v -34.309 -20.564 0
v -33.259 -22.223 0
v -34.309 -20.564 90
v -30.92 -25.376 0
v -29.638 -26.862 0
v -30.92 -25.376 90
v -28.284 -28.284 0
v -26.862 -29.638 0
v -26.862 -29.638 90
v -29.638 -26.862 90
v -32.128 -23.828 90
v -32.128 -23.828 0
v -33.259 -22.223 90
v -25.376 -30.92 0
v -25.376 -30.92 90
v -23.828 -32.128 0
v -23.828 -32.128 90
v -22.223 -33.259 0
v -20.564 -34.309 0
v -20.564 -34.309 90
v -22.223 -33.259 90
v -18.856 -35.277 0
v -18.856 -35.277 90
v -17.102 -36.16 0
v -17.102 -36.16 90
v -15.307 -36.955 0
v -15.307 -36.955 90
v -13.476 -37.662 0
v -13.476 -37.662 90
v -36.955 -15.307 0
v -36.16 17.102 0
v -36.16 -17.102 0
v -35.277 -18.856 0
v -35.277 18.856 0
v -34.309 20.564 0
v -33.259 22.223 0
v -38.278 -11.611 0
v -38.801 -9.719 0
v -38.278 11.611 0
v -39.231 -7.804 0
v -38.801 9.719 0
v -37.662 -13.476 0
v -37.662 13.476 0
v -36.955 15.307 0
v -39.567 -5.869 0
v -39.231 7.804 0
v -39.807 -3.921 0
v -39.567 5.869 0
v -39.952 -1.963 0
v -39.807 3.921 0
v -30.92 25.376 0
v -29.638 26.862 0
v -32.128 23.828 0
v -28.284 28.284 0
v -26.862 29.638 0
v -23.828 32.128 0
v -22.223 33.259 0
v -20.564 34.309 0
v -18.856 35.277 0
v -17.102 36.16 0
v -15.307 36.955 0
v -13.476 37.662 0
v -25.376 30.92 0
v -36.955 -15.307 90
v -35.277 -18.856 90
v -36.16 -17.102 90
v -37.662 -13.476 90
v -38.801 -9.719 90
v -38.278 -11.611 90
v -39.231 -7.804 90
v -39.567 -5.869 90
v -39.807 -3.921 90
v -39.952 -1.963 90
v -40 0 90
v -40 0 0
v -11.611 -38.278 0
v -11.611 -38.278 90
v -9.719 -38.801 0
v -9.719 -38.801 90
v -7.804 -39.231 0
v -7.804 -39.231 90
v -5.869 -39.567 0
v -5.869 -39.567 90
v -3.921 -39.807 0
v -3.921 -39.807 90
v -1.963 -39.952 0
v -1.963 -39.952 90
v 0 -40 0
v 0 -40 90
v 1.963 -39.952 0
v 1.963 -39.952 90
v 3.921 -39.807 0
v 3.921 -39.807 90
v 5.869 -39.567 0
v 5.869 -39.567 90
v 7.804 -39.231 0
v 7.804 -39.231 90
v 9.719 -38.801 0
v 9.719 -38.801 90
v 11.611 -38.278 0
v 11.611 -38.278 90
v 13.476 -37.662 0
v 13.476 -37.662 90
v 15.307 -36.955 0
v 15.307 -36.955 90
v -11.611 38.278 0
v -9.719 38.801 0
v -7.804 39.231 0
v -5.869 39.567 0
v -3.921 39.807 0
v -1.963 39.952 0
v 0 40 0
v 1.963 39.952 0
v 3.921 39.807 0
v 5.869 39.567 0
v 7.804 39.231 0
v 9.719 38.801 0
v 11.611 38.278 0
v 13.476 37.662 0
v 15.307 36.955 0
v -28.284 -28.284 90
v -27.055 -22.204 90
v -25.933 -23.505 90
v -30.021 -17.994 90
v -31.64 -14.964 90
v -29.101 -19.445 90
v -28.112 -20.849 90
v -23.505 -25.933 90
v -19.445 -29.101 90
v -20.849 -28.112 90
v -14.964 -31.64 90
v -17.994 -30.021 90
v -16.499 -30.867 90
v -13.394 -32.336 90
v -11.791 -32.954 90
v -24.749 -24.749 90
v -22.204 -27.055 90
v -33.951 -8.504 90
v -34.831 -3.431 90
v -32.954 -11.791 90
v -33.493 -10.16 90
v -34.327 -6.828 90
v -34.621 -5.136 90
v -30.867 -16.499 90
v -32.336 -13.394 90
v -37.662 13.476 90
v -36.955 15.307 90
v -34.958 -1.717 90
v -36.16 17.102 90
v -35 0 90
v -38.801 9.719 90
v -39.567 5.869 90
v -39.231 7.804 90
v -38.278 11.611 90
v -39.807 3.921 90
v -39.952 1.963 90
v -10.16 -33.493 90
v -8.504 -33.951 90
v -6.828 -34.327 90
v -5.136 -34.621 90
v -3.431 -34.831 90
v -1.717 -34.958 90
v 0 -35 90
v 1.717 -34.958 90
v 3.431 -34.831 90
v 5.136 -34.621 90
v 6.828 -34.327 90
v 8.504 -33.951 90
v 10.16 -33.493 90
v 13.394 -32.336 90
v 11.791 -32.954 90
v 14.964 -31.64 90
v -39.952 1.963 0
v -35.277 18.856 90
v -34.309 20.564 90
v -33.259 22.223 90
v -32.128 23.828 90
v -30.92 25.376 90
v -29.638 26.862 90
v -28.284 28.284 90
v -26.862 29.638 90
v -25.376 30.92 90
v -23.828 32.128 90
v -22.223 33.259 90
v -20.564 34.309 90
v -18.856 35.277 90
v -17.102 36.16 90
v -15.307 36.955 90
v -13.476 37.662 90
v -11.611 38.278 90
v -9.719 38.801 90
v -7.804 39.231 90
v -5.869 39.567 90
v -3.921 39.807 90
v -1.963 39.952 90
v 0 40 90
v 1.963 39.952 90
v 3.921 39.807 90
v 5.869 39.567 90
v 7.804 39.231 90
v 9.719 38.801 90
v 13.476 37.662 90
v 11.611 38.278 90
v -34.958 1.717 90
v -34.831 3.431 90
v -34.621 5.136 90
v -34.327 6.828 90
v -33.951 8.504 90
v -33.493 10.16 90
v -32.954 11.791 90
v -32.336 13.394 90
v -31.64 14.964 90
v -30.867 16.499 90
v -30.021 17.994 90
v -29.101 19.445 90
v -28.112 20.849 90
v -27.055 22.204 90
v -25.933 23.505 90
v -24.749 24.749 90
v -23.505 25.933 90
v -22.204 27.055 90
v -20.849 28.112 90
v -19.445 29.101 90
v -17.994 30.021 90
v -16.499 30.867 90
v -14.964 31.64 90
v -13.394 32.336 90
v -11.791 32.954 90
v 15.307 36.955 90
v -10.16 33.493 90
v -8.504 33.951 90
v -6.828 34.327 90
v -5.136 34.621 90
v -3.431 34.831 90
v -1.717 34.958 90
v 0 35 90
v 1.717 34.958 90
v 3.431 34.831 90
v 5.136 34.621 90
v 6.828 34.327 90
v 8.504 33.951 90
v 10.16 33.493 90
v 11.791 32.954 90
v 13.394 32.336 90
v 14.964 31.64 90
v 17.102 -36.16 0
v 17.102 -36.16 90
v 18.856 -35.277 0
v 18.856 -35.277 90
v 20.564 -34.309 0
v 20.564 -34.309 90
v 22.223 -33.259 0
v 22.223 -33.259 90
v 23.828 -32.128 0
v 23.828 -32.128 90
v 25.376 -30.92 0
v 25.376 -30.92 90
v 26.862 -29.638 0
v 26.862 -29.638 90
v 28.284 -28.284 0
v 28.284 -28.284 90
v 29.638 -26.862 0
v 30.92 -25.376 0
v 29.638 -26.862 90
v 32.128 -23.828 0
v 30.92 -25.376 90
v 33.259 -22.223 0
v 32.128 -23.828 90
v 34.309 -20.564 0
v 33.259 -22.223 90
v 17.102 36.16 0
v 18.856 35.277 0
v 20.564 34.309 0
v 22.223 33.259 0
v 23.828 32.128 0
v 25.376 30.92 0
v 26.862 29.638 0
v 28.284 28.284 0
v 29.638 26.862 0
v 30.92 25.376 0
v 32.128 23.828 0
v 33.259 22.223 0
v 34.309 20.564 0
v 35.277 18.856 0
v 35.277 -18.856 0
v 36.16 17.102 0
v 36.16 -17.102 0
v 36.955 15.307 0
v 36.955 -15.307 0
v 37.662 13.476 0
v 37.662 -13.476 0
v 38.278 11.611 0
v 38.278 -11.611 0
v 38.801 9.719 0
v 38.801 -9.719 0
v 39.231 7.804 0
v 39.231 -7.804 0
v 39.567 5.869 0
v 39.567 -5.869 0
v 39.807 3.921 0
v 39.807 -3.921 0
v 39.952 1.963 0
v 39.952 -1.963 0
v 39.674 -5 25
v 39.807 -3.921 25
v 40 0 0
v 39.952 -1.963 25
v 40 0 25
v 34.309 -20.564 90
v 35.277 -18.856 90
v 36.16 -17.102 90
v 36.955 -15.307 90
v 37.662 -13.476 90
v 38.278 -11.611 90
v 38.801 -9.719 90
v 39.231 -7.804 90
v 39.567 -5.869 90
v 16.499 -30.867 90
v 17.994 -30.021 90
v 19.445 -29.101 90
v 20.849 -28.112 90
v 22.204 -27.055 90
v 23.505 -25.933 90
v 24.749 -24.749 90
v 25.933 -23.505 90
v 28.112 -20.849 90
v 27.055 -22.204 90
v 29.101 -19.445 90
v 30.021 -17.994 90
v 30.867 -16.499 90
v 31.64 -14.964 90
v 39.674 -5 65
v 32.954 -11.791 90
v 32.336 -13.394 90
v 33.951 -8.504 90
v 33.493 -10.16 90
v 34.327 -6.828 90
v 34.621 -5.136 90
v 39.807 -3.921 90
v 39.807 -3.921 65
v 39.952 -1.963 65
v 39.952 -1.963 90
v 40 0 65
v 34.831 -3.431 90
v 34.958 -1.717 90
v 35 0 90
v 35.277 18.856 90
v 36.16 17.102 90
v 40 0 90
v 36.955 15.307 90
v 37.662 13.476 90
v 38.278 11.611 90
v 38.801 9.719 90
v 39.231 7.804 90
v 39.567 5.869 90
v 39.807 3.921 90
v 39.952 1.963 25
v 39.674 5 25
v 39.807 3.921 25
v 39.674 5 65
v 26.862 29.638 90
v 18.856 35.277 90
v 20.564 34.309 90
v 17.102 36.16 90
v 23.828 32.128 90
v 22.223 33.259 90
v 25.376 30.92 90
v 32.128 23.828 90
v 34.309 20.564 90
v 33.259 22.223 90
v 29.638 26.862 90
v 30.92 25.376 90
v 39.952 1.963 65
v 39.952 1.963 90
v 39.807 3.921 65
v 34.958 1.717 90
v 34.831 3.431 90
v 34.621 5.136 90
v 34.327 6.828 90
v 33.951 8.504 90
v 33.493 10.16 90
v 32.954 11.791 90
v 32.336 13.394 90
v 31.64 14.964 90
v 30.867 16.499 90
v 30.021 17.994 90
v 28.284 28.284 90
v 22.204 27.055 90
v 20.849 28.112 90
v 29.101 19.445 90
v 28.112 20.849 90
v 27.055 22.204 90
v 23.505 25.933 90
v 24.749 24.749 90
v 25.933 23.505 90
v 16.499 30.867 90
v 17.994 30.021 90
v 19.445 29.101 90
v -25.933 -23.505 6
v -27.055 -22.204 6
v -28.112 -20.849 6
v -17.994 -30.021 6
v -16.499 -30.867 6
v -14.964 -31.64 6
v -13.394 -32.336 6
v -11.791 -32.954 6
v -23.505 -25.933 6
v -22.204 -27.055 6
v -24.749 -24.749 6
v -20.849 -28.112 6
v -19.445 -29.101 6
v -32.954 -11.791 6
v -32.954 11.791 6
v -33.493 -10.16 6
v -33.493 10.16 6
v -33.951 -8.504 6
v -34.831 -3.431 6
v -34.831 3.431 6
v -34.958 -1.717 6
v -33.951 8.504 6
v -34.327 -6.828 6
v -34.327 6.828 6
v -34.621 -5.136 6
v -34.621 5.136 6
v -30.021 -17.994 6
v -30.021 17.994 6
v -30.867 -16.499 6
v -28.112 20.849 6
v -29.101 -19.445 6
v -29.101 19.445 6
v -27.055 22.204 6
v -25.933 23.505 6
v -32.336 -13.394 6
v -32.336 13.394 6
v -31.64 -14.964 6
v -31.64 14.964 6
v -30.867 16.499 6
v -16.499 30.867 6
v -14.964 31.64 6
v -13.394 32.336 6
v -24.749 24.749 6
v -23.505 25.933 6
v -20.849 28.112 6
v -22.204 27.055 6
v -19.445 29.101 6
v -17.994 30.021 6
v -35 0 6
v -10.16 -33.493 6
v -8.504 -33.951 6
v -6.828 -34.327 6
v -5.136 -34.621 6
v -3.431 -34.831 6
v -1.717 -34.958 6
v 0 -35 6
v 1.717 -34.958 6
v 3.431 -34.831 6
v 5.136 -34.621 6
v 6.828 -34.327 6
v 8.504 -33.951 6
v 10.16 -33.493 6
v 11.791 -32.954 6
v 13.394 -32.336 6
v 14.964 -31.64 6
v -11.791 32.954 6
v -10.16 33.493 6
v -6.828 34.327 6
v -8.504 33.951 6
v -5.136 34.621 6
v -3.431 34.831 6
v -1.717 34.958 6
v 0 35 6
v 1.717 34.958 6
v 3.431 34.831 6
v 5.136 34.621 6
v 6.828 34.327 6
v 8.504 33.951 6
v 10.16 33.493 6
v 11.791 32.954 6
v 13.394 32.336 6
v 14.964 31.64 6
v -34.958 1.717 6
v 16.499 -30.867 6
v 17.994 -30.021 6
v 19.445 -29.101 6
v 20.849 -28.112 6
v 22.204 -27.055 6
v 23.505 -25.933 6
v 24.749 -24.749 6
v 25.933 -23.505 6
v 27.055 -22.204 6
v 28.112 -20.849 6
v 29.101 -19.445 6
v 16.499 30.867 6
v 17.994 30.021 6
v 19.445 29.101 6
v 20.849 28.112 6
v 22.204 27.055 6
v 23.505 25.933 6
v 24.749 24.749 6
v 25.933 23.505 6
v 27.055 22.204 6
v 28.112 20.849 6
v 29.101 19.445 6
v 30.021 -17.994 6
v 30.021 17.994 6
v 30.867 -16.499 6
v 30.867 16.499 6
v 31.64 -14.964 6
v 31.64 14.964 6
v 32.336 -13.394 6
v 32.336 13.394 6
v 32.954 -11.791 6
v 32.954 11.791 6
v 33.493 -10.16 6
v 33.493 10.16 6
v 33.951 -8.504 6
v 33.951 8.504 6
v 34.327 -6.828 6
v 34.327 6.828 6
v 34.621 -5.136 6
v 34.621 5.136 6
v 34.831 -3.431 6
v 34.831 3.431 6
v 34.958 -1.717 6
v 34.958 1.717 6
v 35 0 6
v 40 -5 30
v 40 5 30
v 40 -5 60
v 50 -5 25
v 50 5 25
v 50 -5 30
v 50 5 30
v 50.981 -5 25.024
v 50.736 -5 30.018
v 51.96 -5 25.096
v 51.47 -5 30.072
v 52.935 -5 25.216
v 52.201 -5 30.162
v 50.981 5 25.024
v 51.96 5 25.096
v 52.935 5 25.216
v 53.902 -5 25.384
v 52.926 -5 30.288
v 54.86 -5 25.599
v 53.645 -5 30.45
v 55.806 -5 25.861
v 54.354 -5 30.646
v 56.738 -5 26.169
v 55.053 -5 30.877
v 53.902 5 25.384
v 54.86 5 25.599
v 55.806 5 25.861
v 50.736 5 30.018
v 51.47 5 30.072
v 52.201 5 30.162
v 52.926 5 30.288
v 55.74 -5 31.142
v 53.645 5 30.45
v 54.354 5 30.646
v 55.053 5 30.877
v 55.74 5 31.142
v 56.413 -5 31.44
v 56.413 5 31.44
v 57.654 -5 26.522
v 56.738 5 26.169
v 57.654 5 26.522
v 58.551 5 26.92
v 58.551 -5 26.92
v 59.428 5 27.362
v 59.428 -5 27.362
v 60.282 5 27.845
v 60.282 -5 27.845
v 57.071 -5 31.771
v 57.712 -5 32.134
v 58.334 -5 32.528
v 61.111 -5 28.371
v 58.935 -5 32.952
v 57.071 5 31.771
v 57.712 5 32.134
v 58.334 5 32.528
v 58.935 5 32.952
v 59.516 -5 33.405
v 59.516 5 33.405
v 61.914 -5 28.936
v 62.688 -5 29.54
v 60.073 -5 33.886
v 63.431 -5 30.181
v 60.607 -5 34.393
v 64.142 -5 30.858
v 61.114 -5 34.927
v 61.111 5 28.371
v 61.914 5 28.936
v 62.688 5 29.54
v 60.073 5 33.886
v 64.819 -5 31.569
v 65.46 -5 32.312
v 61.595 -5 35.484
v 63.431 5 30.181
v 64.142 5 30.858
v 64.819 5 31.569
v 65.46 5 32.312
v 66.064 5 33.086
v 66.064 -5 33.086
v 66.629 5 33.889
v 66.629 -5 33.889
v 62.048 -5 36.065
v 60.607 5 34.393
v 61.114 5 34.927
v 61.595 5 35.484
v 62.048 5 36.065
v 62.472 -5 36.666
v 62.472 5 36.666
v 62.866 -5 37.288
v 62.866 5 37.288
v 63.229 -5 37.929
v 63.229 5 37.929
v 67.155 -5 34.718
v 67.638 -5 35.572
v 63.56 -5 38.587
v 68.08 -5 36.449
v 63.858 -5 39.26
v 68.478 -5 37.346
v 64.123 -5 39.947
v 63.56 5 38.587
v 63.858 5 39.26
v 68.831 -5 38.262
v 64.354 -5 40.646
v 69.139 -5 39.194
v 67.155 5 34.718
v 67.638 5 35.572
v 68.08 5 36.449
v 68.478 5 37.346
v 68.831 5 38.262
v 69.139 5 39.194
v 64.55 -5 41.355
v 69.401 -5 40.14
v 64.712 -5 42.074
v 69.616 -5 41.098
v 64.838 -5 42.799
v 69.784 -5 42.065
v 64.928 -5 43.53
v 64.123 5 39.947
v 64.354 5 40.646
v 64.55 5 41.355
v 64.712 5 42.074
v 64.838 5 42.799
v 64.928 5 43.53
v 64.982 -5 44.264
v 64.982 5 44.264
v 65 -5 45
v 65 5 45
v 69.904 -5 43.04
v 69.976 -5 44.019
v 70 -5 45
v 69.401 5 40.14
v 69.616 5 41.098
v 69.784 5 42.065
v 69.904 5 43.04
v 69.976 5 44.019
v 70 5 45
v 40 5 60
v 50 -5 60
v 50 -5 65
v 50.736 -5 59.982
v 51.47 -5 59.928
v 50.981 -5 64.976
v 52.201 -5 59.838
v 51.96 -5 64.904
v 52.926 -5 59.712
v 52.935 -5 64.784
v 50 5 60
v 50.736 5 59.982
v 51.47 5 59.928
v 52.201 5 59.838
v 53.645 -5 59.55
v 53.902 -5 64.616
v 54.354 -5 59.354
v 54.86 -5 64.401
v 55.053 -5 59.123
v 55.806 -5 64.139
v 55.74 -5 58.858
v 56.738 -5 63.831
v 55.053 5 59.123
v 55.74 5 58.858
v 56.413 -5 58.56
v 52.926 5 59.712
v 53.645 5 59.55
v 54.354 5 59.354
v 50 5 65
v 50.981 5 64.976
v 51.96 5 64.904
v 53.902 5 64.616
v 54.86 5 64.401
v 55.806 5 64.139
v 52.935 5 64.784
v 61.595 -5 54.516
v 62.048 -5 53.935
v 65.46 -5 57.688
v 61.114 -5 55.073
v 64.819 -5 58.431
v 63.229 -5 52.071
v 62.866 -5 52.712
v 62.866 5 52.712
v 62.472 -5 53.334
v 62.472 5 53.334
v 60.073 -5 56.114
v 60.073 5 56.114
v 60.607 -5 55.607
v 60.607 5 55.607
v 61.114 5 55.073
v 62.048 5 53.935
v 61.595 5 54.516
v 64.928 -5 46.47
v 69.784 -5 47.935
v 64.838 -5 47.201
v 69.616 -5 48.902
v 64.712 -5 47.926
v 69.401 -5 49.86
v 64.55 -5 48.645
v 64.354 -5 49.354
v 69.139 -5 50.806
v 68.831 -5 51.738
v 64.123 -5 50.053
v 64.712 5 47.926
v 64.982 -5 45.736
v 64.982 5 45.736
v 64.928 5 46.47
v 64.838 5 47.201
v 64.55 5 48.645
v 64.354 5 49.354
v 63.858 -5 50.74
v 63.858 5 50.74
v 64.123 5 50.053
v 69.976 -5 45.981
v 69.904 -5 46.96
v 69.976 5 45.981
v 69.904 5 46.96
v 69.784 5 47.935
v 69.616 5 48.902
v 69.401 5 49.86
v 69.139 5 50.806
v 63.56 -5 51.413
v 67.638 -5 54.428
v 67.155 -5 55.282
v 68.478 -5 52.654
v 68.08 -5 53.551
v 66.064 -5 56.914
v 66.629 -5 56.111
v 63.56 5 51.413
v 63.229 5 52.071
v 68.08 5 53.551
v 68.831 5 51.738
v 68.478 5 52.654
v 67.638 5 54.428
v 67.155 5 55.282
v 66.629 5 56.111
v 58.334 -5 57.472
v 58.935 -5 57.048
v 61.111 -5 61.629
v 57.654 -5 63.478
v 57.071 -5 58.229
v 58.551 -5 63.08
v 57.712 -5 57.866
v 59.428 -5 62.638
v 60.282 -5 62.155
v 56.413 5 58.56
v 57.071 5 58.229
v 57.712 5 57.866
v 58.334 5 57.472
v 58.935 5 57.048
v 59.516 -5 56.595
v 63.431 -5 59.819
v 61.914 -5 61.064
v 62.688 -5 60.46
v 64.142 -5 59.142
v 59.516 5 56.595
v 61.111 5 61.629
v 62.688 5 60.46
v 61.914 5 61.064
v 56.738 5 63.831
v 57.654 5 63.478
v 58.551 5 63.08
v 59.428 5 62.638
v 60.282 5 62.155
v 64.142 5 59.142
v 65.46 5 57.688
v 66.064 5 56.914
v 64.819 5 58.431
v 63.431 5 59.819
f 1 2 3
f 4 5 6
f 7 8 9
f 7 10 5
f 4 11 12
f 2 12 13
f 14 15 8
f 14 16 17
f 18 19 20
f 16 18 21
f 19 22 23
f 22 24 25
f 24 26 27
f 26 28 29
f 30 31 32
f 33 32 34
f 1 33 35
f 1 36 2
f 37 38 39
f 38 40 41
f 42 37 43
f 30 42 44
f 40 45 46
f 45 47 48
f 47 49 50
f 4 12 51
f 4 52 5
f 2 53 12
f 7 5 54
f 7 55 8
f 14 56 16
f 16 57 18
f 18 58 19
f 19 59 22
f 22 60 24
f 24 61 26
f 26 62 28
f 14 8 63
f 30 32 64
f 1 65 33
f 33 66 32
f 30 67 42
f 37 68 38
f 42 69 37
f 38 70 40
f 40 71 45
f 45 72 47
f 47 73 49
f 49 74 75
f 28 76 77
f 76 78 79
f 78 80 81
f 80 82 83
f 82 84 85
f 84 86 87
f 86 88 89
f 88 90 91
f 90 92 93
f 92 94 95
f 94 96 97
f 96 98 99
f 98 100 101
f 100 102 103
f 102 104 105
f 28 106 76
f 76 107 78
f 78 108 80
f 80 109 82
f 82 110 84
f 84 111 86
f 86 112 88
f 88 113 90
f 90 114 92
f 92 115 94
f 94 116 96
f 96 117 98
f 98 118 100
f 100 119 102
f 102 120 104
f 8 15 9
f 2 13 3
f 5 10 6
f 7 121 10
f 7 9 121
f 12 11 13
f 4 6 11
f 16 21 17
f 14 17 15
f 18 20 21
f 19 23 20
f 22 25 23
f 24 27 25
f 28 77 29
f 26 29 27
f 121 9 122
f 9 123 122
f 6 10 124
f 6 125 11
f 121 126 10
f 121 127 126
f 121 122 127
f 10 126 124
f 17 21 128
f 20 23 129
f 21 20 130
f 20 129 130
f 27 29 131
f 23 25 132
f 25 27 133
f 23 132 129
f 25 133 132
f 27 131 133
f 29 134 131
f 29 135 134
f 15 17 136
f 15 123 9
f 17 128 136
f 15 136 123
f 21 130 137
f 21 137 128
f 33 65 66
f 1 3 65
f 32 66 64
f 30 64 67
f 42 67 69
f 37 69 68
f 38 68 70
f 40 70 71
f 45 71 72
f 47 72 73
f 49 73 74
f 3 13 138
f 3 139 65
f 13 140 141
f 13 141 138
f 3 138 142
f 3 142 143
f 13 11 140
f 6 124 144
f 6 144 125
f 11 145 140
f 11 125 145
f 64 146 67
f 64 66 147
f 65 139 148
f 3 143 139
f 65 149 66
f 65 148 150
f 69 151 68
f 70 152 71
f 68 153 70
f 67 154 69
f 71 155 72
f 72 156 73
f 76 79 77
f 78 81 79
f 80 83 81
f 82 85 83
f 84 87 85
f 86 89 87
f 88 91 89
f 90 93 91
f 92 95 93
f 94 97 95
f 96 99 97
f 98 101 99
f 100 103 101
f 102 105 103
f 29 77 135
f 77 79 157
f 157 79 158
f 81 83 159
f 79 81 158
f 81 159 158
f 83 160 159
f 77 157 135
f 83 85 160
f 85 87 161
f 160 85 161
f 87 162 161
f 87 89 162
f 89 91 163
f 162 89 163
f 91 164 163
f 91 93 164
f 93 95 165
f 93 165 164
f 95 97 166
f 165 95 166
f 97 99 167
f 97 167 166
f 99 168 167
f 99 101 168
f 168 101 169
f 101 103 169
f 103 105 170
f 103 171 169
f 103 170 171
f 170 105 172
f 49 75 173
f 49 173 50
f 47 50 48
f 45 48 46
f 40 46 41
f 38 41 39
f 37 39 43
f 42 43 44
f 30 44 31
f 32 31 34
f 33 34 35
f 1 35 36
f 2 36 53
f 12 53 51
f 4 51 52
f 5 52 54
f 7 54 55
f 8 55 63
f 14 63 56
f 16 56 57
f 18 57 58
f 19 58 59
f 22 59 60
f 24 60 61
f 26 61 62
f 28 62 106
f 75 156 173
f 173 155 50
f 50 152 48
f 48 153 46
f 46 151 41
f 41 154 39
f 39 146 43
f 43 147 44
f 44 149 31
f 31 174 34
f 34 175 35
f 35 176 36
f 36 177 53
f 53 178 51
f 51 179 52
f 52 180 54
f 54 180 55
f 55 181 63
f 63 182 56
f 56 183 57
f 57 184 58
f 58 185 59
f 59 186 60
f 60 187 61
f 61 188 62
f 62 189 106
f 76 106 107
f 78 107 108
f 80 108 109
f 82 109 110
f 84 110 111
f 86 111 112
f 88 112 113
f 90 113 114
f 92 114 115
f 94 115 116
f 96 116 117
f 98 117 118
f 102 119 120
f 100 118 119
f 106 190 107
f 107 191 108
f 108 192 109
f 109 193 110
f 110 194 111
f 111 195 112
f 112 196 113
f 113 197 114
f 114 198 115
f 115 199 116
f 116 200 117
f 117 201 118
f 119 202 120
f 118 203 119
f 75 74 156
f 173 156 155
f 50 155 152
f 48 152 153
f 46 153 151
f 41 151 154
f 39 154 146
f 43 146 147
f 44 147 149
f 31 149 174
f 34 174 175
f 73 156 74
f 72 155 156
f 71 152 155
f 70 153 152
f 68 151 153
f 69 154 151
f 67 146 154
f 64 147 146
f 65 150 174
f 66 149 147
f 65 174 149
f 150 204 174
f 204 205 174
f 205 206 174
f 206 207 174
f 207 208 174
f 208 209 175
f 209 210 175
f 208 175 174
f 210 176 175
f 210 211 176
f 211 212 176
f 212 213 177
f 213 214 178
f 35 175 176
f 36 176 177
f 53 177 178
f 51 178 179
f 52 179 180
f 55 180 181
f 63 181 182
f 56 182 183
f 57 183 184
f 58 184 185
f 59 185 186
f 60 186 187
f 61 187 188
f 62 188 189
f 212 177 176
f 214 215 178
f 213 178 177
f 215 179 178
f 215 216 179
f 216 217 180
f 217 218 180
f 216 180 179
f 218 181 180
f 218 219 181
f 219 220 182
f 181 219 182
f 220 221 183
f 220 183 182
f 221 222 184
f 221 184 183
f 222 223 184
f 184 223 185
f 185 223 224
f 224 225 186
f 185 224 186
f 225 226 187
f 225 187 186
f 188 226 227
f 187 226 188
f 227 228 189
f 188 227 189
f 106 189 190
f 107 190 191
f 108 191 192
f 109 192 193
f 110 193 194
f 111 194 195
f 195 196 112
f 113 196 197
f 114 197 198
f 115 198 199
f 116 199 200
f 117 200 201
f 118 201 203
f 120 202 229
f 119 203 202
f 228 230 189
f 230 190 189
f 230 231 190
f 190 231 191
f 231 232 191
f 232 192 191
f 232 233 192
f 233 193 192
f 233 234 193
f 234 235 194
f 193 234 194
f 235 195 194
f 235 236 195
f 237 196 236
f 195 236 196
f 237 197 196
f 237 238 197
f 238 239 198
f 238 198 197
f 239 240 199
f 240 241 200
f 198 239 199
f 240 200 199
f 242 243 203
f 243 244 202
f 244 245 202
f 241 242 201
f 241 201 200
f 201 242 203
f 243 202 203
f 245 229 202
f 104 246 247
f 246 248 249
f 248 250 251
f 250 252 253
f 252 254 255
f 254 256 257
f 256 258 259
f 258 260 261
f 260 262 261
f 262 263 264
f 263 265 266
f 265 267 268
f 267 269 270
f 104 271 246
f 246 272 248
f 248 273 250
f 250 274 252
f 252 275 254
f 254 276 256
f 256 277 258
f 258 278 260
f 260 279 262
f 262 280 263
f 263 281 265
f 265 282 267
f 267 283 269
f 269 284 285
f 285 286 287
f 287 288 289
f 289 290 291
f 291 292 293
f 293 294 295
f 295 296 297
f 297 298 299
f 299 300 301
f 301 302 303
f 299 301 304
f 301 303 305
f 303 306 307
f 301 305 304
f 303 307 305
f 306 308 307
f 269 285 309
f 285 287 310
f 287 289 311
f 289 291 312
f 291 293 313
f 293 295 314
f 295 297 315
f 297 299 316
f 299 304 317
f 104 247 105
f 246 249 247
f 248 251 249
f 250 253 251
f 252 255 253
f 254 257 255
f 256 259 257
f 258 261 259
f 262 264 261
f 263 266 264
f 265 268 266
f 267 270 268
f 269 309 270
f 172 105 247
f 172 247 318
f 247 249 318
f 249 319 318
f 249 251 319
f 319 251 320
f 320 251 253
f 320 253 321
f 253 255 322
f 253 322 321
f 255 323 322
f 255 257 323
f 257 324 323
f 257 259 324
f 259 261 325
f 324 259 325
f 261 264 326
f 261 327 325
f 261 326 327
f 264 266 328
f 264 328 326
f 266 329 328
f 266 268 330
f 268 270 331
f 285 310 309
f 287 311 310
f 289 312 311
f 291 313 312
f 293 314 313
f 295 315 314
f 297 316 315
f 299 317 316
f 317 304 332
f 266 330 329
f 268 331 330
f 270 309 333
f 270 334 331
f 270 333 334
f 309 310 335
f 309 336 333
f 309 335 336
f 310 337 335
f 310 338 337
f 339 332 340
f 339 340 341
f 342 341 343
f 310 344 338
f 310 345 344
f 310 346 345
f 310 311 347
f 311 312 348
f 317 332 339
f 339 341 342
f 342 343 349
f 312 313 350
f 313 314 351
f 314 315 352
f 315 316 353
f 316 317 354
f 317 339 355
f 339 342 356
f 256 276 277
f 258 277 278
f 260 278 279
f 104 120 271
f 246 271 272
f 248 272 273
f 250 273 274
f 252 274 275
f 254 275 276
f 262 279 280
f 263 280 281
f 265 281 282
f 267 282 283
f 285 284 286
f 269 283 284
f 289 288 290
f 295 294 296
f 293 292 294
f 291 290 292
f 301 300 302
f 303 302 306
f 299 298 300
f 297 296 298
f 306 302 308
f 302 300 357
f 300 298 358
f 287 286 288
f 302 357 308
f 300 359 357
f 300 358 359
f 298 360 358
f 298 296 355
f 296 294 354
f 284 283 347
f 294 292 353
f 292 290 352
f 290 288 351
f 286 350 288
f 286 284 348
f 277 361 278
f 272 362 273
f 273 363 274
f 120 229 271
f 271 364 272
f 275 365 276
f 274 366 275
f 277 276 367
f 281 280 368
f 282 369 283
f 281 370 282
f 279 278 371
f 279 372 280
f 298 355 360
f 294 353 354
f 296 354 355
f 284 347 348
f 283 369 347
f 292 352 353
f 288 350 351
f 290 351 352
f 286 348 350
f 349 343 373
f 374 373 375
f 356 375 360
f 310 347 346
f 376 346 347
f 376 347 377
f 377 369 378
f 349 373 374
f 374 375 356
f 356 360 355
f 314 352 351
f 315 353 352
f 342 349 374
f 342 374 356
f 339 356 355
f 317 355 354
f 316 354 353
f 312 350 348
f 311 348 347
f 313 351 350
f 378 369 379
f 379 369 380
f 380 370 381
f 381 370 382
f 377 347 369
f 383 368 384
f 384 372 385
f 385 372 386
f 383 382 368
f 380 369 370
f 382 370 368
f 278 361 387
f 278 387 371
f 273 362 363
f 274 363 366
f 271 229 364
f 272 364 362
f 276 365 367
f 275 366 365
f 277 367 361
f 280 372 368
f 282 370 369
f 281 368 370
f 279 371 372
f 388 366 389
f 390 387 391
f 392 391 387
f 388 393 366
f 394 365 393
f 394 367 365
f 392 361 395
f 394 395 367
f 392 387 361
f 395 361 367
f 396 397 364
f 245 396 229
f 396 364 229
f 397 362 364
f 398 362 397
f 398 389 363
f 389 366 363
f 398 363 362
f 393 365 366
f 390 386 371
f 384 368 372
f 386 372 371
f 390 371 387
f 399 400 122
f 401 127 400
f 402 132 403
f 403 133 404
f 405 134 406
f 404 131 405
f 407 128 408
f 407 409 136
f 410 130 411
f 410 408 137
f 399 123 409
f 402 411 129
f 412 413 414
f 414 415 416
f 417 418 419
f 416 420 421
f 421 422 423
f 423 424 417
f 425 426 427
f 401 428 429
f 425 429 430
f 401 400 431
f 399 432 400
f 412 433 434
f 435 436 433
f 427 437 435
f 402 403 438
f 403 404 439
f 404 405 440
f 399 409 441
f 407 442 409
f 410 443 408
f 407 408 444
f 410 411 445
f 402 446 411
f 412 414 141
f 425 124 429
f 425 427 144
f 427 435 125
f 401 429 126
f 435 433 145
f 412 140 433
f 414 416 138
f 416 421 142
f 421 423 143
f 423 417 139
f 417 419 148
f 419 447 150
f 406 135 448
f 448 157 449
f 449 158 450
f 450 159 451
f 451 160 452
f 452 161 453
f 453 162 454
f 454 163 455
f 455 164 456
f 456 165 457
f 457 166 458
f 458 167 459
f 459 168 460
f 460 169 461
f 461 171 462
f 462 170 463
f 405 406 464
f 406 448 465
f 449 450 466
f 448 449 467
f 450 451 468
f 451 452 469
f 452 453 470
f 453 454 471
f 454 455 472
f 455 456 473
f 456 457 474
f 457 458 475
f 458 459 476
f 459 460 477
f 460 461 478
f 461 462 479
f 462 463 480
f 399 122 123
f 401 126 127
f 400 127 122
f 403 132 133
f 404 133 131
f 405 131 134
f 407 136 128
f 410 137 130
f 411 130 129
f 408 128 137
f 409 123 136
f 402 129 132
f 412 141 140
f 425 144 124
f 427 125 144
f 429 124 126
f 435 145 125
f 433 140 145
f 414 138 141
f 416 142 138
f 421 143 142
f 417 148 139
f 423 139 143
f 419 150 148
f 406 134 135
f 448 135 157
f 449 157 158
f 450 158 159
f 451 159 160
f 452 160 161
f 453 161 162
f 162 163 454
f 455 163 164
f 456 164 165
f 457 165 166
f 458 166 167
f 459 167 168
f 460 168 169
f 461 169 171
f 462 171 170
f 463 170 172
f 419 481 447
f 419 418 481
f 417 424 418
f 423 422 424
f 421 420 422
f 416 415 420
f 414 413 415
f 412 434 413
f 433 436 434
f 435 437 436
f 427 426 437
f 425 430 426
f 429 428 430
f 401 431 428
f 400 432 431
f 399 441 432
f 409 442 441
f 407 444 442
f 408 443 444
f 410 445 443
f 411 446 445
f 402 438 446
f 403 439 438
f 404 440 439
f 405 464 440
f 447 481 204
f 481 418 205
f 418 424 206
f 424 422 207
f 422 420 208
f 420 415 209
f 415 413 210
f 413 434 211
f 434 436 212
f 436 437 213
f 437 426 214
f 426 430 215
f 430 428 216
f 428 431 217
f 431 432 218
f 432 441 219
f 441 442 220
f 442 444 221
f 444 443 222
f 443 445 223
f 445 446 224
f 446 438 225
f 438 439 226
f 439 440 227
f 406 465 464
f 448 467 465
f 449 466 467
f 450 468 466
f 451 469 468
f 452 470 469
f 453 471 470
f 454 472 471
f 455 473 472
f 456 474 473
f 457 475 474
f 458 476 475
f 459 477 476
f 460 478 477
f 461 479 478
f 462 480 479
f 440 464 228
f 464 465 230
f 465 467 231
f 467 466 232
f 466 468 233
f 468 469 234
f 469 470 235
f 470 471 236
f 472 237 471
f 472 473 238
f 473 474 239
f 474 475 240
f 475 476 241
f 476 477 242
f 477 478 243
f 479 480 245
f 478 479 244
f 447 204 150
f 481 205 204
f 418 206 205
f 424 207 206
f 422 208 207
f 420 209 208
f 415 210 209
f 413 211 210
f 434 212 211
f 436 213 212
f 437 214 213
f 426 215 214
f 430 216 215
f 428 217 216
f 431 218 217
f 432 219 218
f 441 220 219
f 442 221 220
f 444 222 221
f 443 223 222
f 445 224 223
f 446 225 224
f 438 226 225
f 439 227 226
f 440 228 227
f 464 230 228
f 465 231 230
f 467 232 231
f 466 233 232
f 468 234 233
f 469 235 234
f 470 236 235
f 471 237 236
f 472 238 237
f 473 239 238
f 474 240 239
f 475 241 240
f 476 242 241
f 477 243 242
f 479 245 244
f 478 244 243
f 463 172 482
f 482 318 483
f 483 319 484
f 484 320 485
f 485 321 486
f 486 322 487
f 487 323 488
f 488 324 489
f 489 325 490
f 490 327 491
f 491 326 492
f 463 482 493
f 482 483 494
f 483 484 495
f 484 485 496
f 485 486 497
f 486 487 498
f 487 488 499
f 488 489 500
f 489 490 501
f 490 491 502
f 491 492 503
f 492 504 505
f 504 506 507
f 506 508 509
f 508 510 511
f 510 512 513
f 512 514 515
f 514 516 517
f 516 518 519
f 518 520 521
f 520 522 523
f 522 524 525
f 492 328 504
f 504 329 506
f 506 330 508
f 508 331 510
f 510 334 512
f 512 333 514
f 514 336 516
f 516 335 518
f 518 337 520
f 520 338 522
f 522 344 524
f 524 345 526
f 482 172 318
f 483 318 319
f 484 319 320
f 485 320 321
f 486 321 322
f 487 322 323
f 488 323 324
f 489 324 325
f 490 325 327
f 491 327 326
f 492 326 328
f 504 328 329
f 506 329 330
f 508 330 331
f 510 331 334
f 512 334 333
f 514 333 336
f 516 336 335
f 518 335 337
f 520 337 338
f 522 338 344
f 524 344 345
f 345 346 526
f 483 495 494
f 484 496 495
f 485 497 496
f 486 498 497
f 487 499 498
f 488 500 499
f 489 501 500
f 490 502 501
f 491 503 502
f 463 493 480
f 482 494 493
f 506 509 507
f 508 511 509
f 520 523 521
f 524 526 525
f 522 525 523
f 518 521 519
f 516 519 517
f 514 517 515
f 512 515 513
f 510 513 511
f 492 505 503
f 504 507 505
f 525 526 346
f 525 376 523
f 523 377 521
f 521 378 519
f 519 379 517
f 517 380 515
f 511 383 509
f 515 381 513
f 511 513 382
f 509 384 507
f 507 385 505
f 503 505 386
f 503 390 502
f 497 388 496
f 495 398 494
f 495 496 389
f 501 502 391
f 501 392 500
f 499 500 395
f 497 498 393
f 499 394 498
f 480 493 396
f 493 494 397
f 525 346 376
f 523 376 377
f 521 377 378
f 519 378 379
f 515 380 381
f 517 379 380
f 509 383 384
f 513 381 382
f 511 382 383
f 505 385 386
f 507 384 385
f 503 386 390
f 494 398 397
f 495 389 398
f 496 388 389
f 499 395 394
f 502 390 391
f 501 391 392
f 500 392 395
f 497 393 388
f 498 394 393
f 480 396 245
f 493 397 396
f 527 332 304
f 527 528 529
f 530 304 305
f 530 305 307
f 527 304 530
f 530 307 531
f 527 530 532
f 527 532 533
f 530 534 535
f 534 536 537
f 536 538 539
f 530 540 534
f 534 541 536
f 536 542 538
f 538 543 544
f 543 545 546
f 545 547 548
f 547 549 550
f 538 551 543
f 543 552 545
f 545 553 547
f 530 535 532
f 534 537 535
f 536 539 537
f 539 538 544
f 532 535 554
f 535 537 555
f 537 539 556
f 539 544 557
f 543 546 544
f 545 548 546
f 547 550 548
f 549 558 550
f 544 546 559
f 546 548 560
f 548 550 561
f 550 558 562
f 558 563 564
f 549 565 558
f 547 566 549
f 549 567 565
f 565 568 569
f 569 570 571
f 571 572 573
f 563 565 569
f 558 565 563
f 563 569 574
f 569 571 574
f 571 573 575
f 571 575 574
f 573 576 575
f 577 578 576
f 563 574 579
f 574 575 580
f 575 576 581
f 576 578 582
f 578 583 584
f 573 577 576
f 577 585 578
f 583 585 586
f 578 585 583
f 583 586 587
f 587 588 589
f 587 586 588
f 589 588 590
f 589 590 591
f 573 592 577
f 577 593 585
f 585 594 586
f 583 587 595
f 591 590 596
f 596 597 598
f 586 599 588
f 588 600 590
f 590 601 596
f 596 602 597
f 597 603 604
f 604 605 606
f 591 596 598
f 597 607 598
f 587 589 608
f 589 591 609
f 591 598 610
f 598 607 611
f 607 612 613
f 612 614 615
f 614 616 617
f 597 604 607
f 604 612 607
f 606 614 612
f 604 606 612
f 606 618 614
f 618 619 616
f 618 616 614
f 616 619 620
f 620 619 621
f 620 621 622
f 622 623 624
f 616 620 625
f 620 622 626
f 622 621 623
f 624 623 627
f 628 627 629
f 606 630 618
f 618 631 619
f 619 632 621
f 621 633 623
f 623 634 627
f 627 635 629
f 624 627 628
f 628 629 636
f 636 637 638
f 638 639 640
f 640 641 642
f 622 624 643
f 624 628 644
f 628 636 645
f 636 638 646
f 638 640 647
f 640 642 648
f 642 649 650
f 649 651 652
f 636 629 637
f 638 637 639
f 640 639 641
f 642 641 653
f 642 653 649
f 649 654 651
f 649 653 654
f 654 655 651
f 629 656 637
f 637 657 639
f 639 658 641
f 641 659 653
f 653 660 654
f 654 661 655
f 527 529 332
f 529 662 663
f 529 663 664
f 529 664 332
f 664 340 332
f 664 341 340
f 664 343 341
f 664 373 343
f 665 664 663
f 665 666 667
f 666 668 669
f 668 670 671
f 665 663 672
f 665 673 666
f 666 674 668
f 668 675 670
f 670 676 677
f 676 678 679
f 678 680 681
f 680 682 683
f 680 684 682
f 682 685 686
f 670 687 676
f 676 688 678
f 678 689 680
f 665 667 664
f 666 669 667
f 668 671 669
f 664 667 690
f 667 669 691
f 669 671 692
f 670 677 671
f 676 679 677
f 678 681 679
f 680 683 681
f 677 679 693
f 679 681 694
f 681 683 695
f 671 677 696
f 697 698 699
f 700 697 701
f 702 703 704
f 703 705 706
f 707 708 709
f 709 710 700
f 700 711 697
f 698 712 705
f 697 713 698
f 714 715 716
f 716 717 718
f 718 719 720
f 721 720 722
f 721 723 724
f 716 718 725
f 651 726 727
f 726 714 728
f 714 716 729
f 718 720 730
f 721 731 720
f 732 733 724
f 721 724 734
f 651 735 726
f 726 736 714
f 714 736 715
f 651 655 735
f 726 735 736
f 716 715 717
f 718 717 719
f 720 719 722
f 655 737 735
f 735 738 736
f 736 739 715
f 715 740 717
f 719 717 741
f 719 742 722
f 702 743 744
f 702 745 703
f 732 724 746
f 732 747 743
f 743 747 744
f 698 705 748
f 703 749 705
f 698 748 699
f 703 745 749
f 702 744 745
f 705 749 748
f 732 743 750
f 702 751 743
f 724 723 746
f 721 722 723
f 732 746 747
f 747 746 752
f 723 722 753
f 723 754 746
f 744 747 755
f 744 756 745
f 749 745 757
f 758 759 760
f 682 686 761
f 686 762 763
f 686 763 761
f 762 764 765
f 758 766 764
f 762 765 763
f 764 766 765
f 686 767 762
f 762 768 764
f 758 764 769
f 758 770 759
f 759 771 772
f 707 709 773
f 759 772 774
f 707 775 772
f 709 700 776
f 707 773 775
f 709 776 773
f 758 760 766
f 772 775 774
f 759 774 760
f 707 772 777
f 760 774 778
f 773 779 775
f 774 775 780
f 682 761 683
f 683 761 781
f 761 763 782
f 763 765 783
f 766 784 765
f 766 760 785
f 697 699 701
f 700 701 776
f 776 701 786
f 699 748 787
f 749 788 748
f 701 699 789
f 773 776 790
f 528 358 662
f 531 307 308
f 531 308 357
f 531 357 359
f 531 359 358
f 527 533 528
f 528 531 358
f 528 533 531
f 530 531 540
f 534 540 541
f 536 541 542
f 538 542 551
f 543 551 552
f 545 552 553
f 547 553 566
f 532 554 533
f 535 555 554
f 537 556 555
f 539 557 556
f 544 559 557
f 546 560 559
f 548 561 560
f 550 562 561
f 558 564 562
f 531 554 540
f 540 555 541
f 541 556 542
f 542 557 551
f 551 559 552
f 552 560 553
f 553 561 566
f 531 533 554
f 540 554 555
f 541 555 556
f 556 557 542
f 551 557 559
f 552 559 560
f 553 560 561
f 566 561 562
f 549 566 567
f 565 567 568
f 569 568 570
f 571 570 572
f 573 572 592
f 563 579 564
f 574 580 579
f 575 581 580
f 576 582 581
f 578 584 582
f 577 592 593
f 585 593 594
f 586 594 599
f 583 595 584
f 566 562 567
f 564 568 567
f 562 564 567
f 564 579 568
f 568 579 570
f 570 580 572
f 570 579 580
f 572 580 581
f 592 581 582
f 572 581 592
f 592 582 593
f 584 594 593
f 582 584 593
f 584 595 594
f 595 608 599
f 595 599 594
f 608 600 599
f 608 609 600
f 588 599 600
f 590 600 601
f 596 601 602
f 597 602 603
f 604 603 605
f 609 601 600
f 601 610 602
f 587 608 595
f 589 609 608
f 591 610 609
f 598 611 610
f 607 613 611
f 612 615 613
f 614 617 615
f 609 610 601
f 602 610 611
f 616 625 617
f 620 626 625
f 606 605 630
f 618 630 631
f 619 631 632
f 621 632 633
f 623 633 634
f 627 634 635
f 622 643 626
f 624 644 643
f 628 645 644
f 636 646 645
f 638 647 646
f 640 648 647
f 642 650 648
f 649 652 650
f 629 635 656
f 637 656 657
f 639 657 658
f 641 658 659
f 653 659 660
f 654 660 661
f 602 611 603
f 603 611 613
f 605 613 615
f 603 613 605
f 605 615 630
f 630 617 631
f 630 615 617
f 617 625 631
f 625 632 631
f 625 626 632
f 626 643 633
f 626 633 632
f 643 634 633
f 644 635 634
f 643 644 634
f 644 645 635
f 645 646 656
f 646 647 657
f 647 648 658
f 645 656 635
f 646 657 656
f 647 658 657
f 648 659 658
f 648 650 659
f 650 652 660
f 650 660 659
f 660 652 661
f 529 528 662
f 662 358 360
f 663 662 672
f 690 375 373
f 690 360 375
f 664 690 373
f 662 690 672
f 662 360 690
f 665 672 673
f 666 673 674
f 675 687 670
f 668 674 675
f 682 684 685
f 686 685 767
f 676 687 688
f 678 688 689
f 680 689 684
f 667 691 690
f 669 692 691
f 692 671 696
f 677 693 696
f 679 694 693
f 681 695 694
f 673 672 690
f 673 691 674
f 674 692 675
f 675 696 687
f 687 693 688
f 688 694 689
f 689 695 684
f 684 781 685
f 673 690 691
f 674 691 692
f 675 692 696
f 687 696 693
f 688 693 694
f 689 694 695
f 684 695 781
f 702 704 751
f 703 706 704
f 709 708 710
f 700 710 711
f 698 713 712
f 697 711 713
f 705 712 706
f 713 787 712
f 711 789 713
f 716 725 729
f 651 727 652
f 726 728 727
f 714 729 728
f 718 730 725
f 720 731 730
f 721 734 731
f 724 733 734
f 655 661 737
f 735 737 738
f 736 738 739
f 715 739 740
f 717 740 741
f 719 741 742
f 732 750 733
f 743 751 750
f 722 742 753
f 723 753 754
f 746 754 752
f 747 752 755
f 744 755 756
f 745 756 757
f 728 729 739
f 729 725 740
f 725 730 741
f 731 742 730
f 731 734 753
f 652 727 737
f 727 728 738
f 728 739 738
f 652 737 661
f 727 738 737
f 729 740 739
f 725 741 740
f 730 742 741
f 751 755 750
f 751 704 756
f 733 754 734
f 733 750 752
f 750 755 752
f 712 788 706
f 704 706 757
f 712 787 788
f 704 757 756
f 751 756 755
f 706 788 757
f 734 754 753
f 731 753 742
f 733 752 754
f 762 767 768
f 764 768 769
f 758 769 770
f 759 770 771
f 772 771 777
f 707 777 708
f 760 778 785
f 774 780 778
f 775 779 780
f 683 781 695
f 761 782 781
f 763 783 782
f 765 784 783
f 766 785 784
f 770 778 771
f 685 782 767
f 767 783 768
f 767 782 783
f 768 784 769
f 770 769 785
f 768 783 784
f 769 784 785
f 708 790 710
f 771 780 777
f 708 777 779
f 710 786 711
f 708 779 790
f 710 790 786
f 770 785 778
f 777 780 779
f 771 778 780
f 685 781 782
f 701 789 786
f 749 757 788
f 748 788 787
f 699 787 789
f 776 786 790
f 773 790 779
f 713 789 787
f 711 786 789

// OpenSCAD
outer_d = 80;
inner_d = 70;
mug_height = 90;
bottom_thickness = 6;

opening_width = 25;
opening_height = 30;
handle_band = 5;
handle_depth = 10;

opening_radius = opening_height / 2;
opening_arc_center_x = opening_width - opening_radius;

$fn = 128;

module mug_body() {
    difference() {
        cylinder(d = outer_d, h = mug_height);

        translate([0, 0, bottom_thickness])
            cylinder(
                d = inner_d,
                h = mug_height - bottom_thickness + 1
            );
    }
}

module d_profile(radius, left_x, center_x) {
    union() {
        translate([left_x, -radius])
            square([center_x - left_x, 2 * radius]);

        intersection() {
            translate([center_x, 0])
                circle(r = radius);

            translate([center_x, -radius])
                square([radius, 2 * radius]);
        }
    }
}

module handle() {
    translate([outer_d / 2, 0, mug_height / 2])
        rotate([90, 0, 0])
            linear_extrude(height = handle_depth, center = true)
                difference() {
                    d_profile(
                        opening_radius + handle_band,
                        -handle_band,
                        opening_arc_center_x
                    );

                    d_profile(
                        opening_radius,
                        0,
                        opening_arc_center_x
                    );
                }
}

union() {
    mug_body();
    handle();
}
